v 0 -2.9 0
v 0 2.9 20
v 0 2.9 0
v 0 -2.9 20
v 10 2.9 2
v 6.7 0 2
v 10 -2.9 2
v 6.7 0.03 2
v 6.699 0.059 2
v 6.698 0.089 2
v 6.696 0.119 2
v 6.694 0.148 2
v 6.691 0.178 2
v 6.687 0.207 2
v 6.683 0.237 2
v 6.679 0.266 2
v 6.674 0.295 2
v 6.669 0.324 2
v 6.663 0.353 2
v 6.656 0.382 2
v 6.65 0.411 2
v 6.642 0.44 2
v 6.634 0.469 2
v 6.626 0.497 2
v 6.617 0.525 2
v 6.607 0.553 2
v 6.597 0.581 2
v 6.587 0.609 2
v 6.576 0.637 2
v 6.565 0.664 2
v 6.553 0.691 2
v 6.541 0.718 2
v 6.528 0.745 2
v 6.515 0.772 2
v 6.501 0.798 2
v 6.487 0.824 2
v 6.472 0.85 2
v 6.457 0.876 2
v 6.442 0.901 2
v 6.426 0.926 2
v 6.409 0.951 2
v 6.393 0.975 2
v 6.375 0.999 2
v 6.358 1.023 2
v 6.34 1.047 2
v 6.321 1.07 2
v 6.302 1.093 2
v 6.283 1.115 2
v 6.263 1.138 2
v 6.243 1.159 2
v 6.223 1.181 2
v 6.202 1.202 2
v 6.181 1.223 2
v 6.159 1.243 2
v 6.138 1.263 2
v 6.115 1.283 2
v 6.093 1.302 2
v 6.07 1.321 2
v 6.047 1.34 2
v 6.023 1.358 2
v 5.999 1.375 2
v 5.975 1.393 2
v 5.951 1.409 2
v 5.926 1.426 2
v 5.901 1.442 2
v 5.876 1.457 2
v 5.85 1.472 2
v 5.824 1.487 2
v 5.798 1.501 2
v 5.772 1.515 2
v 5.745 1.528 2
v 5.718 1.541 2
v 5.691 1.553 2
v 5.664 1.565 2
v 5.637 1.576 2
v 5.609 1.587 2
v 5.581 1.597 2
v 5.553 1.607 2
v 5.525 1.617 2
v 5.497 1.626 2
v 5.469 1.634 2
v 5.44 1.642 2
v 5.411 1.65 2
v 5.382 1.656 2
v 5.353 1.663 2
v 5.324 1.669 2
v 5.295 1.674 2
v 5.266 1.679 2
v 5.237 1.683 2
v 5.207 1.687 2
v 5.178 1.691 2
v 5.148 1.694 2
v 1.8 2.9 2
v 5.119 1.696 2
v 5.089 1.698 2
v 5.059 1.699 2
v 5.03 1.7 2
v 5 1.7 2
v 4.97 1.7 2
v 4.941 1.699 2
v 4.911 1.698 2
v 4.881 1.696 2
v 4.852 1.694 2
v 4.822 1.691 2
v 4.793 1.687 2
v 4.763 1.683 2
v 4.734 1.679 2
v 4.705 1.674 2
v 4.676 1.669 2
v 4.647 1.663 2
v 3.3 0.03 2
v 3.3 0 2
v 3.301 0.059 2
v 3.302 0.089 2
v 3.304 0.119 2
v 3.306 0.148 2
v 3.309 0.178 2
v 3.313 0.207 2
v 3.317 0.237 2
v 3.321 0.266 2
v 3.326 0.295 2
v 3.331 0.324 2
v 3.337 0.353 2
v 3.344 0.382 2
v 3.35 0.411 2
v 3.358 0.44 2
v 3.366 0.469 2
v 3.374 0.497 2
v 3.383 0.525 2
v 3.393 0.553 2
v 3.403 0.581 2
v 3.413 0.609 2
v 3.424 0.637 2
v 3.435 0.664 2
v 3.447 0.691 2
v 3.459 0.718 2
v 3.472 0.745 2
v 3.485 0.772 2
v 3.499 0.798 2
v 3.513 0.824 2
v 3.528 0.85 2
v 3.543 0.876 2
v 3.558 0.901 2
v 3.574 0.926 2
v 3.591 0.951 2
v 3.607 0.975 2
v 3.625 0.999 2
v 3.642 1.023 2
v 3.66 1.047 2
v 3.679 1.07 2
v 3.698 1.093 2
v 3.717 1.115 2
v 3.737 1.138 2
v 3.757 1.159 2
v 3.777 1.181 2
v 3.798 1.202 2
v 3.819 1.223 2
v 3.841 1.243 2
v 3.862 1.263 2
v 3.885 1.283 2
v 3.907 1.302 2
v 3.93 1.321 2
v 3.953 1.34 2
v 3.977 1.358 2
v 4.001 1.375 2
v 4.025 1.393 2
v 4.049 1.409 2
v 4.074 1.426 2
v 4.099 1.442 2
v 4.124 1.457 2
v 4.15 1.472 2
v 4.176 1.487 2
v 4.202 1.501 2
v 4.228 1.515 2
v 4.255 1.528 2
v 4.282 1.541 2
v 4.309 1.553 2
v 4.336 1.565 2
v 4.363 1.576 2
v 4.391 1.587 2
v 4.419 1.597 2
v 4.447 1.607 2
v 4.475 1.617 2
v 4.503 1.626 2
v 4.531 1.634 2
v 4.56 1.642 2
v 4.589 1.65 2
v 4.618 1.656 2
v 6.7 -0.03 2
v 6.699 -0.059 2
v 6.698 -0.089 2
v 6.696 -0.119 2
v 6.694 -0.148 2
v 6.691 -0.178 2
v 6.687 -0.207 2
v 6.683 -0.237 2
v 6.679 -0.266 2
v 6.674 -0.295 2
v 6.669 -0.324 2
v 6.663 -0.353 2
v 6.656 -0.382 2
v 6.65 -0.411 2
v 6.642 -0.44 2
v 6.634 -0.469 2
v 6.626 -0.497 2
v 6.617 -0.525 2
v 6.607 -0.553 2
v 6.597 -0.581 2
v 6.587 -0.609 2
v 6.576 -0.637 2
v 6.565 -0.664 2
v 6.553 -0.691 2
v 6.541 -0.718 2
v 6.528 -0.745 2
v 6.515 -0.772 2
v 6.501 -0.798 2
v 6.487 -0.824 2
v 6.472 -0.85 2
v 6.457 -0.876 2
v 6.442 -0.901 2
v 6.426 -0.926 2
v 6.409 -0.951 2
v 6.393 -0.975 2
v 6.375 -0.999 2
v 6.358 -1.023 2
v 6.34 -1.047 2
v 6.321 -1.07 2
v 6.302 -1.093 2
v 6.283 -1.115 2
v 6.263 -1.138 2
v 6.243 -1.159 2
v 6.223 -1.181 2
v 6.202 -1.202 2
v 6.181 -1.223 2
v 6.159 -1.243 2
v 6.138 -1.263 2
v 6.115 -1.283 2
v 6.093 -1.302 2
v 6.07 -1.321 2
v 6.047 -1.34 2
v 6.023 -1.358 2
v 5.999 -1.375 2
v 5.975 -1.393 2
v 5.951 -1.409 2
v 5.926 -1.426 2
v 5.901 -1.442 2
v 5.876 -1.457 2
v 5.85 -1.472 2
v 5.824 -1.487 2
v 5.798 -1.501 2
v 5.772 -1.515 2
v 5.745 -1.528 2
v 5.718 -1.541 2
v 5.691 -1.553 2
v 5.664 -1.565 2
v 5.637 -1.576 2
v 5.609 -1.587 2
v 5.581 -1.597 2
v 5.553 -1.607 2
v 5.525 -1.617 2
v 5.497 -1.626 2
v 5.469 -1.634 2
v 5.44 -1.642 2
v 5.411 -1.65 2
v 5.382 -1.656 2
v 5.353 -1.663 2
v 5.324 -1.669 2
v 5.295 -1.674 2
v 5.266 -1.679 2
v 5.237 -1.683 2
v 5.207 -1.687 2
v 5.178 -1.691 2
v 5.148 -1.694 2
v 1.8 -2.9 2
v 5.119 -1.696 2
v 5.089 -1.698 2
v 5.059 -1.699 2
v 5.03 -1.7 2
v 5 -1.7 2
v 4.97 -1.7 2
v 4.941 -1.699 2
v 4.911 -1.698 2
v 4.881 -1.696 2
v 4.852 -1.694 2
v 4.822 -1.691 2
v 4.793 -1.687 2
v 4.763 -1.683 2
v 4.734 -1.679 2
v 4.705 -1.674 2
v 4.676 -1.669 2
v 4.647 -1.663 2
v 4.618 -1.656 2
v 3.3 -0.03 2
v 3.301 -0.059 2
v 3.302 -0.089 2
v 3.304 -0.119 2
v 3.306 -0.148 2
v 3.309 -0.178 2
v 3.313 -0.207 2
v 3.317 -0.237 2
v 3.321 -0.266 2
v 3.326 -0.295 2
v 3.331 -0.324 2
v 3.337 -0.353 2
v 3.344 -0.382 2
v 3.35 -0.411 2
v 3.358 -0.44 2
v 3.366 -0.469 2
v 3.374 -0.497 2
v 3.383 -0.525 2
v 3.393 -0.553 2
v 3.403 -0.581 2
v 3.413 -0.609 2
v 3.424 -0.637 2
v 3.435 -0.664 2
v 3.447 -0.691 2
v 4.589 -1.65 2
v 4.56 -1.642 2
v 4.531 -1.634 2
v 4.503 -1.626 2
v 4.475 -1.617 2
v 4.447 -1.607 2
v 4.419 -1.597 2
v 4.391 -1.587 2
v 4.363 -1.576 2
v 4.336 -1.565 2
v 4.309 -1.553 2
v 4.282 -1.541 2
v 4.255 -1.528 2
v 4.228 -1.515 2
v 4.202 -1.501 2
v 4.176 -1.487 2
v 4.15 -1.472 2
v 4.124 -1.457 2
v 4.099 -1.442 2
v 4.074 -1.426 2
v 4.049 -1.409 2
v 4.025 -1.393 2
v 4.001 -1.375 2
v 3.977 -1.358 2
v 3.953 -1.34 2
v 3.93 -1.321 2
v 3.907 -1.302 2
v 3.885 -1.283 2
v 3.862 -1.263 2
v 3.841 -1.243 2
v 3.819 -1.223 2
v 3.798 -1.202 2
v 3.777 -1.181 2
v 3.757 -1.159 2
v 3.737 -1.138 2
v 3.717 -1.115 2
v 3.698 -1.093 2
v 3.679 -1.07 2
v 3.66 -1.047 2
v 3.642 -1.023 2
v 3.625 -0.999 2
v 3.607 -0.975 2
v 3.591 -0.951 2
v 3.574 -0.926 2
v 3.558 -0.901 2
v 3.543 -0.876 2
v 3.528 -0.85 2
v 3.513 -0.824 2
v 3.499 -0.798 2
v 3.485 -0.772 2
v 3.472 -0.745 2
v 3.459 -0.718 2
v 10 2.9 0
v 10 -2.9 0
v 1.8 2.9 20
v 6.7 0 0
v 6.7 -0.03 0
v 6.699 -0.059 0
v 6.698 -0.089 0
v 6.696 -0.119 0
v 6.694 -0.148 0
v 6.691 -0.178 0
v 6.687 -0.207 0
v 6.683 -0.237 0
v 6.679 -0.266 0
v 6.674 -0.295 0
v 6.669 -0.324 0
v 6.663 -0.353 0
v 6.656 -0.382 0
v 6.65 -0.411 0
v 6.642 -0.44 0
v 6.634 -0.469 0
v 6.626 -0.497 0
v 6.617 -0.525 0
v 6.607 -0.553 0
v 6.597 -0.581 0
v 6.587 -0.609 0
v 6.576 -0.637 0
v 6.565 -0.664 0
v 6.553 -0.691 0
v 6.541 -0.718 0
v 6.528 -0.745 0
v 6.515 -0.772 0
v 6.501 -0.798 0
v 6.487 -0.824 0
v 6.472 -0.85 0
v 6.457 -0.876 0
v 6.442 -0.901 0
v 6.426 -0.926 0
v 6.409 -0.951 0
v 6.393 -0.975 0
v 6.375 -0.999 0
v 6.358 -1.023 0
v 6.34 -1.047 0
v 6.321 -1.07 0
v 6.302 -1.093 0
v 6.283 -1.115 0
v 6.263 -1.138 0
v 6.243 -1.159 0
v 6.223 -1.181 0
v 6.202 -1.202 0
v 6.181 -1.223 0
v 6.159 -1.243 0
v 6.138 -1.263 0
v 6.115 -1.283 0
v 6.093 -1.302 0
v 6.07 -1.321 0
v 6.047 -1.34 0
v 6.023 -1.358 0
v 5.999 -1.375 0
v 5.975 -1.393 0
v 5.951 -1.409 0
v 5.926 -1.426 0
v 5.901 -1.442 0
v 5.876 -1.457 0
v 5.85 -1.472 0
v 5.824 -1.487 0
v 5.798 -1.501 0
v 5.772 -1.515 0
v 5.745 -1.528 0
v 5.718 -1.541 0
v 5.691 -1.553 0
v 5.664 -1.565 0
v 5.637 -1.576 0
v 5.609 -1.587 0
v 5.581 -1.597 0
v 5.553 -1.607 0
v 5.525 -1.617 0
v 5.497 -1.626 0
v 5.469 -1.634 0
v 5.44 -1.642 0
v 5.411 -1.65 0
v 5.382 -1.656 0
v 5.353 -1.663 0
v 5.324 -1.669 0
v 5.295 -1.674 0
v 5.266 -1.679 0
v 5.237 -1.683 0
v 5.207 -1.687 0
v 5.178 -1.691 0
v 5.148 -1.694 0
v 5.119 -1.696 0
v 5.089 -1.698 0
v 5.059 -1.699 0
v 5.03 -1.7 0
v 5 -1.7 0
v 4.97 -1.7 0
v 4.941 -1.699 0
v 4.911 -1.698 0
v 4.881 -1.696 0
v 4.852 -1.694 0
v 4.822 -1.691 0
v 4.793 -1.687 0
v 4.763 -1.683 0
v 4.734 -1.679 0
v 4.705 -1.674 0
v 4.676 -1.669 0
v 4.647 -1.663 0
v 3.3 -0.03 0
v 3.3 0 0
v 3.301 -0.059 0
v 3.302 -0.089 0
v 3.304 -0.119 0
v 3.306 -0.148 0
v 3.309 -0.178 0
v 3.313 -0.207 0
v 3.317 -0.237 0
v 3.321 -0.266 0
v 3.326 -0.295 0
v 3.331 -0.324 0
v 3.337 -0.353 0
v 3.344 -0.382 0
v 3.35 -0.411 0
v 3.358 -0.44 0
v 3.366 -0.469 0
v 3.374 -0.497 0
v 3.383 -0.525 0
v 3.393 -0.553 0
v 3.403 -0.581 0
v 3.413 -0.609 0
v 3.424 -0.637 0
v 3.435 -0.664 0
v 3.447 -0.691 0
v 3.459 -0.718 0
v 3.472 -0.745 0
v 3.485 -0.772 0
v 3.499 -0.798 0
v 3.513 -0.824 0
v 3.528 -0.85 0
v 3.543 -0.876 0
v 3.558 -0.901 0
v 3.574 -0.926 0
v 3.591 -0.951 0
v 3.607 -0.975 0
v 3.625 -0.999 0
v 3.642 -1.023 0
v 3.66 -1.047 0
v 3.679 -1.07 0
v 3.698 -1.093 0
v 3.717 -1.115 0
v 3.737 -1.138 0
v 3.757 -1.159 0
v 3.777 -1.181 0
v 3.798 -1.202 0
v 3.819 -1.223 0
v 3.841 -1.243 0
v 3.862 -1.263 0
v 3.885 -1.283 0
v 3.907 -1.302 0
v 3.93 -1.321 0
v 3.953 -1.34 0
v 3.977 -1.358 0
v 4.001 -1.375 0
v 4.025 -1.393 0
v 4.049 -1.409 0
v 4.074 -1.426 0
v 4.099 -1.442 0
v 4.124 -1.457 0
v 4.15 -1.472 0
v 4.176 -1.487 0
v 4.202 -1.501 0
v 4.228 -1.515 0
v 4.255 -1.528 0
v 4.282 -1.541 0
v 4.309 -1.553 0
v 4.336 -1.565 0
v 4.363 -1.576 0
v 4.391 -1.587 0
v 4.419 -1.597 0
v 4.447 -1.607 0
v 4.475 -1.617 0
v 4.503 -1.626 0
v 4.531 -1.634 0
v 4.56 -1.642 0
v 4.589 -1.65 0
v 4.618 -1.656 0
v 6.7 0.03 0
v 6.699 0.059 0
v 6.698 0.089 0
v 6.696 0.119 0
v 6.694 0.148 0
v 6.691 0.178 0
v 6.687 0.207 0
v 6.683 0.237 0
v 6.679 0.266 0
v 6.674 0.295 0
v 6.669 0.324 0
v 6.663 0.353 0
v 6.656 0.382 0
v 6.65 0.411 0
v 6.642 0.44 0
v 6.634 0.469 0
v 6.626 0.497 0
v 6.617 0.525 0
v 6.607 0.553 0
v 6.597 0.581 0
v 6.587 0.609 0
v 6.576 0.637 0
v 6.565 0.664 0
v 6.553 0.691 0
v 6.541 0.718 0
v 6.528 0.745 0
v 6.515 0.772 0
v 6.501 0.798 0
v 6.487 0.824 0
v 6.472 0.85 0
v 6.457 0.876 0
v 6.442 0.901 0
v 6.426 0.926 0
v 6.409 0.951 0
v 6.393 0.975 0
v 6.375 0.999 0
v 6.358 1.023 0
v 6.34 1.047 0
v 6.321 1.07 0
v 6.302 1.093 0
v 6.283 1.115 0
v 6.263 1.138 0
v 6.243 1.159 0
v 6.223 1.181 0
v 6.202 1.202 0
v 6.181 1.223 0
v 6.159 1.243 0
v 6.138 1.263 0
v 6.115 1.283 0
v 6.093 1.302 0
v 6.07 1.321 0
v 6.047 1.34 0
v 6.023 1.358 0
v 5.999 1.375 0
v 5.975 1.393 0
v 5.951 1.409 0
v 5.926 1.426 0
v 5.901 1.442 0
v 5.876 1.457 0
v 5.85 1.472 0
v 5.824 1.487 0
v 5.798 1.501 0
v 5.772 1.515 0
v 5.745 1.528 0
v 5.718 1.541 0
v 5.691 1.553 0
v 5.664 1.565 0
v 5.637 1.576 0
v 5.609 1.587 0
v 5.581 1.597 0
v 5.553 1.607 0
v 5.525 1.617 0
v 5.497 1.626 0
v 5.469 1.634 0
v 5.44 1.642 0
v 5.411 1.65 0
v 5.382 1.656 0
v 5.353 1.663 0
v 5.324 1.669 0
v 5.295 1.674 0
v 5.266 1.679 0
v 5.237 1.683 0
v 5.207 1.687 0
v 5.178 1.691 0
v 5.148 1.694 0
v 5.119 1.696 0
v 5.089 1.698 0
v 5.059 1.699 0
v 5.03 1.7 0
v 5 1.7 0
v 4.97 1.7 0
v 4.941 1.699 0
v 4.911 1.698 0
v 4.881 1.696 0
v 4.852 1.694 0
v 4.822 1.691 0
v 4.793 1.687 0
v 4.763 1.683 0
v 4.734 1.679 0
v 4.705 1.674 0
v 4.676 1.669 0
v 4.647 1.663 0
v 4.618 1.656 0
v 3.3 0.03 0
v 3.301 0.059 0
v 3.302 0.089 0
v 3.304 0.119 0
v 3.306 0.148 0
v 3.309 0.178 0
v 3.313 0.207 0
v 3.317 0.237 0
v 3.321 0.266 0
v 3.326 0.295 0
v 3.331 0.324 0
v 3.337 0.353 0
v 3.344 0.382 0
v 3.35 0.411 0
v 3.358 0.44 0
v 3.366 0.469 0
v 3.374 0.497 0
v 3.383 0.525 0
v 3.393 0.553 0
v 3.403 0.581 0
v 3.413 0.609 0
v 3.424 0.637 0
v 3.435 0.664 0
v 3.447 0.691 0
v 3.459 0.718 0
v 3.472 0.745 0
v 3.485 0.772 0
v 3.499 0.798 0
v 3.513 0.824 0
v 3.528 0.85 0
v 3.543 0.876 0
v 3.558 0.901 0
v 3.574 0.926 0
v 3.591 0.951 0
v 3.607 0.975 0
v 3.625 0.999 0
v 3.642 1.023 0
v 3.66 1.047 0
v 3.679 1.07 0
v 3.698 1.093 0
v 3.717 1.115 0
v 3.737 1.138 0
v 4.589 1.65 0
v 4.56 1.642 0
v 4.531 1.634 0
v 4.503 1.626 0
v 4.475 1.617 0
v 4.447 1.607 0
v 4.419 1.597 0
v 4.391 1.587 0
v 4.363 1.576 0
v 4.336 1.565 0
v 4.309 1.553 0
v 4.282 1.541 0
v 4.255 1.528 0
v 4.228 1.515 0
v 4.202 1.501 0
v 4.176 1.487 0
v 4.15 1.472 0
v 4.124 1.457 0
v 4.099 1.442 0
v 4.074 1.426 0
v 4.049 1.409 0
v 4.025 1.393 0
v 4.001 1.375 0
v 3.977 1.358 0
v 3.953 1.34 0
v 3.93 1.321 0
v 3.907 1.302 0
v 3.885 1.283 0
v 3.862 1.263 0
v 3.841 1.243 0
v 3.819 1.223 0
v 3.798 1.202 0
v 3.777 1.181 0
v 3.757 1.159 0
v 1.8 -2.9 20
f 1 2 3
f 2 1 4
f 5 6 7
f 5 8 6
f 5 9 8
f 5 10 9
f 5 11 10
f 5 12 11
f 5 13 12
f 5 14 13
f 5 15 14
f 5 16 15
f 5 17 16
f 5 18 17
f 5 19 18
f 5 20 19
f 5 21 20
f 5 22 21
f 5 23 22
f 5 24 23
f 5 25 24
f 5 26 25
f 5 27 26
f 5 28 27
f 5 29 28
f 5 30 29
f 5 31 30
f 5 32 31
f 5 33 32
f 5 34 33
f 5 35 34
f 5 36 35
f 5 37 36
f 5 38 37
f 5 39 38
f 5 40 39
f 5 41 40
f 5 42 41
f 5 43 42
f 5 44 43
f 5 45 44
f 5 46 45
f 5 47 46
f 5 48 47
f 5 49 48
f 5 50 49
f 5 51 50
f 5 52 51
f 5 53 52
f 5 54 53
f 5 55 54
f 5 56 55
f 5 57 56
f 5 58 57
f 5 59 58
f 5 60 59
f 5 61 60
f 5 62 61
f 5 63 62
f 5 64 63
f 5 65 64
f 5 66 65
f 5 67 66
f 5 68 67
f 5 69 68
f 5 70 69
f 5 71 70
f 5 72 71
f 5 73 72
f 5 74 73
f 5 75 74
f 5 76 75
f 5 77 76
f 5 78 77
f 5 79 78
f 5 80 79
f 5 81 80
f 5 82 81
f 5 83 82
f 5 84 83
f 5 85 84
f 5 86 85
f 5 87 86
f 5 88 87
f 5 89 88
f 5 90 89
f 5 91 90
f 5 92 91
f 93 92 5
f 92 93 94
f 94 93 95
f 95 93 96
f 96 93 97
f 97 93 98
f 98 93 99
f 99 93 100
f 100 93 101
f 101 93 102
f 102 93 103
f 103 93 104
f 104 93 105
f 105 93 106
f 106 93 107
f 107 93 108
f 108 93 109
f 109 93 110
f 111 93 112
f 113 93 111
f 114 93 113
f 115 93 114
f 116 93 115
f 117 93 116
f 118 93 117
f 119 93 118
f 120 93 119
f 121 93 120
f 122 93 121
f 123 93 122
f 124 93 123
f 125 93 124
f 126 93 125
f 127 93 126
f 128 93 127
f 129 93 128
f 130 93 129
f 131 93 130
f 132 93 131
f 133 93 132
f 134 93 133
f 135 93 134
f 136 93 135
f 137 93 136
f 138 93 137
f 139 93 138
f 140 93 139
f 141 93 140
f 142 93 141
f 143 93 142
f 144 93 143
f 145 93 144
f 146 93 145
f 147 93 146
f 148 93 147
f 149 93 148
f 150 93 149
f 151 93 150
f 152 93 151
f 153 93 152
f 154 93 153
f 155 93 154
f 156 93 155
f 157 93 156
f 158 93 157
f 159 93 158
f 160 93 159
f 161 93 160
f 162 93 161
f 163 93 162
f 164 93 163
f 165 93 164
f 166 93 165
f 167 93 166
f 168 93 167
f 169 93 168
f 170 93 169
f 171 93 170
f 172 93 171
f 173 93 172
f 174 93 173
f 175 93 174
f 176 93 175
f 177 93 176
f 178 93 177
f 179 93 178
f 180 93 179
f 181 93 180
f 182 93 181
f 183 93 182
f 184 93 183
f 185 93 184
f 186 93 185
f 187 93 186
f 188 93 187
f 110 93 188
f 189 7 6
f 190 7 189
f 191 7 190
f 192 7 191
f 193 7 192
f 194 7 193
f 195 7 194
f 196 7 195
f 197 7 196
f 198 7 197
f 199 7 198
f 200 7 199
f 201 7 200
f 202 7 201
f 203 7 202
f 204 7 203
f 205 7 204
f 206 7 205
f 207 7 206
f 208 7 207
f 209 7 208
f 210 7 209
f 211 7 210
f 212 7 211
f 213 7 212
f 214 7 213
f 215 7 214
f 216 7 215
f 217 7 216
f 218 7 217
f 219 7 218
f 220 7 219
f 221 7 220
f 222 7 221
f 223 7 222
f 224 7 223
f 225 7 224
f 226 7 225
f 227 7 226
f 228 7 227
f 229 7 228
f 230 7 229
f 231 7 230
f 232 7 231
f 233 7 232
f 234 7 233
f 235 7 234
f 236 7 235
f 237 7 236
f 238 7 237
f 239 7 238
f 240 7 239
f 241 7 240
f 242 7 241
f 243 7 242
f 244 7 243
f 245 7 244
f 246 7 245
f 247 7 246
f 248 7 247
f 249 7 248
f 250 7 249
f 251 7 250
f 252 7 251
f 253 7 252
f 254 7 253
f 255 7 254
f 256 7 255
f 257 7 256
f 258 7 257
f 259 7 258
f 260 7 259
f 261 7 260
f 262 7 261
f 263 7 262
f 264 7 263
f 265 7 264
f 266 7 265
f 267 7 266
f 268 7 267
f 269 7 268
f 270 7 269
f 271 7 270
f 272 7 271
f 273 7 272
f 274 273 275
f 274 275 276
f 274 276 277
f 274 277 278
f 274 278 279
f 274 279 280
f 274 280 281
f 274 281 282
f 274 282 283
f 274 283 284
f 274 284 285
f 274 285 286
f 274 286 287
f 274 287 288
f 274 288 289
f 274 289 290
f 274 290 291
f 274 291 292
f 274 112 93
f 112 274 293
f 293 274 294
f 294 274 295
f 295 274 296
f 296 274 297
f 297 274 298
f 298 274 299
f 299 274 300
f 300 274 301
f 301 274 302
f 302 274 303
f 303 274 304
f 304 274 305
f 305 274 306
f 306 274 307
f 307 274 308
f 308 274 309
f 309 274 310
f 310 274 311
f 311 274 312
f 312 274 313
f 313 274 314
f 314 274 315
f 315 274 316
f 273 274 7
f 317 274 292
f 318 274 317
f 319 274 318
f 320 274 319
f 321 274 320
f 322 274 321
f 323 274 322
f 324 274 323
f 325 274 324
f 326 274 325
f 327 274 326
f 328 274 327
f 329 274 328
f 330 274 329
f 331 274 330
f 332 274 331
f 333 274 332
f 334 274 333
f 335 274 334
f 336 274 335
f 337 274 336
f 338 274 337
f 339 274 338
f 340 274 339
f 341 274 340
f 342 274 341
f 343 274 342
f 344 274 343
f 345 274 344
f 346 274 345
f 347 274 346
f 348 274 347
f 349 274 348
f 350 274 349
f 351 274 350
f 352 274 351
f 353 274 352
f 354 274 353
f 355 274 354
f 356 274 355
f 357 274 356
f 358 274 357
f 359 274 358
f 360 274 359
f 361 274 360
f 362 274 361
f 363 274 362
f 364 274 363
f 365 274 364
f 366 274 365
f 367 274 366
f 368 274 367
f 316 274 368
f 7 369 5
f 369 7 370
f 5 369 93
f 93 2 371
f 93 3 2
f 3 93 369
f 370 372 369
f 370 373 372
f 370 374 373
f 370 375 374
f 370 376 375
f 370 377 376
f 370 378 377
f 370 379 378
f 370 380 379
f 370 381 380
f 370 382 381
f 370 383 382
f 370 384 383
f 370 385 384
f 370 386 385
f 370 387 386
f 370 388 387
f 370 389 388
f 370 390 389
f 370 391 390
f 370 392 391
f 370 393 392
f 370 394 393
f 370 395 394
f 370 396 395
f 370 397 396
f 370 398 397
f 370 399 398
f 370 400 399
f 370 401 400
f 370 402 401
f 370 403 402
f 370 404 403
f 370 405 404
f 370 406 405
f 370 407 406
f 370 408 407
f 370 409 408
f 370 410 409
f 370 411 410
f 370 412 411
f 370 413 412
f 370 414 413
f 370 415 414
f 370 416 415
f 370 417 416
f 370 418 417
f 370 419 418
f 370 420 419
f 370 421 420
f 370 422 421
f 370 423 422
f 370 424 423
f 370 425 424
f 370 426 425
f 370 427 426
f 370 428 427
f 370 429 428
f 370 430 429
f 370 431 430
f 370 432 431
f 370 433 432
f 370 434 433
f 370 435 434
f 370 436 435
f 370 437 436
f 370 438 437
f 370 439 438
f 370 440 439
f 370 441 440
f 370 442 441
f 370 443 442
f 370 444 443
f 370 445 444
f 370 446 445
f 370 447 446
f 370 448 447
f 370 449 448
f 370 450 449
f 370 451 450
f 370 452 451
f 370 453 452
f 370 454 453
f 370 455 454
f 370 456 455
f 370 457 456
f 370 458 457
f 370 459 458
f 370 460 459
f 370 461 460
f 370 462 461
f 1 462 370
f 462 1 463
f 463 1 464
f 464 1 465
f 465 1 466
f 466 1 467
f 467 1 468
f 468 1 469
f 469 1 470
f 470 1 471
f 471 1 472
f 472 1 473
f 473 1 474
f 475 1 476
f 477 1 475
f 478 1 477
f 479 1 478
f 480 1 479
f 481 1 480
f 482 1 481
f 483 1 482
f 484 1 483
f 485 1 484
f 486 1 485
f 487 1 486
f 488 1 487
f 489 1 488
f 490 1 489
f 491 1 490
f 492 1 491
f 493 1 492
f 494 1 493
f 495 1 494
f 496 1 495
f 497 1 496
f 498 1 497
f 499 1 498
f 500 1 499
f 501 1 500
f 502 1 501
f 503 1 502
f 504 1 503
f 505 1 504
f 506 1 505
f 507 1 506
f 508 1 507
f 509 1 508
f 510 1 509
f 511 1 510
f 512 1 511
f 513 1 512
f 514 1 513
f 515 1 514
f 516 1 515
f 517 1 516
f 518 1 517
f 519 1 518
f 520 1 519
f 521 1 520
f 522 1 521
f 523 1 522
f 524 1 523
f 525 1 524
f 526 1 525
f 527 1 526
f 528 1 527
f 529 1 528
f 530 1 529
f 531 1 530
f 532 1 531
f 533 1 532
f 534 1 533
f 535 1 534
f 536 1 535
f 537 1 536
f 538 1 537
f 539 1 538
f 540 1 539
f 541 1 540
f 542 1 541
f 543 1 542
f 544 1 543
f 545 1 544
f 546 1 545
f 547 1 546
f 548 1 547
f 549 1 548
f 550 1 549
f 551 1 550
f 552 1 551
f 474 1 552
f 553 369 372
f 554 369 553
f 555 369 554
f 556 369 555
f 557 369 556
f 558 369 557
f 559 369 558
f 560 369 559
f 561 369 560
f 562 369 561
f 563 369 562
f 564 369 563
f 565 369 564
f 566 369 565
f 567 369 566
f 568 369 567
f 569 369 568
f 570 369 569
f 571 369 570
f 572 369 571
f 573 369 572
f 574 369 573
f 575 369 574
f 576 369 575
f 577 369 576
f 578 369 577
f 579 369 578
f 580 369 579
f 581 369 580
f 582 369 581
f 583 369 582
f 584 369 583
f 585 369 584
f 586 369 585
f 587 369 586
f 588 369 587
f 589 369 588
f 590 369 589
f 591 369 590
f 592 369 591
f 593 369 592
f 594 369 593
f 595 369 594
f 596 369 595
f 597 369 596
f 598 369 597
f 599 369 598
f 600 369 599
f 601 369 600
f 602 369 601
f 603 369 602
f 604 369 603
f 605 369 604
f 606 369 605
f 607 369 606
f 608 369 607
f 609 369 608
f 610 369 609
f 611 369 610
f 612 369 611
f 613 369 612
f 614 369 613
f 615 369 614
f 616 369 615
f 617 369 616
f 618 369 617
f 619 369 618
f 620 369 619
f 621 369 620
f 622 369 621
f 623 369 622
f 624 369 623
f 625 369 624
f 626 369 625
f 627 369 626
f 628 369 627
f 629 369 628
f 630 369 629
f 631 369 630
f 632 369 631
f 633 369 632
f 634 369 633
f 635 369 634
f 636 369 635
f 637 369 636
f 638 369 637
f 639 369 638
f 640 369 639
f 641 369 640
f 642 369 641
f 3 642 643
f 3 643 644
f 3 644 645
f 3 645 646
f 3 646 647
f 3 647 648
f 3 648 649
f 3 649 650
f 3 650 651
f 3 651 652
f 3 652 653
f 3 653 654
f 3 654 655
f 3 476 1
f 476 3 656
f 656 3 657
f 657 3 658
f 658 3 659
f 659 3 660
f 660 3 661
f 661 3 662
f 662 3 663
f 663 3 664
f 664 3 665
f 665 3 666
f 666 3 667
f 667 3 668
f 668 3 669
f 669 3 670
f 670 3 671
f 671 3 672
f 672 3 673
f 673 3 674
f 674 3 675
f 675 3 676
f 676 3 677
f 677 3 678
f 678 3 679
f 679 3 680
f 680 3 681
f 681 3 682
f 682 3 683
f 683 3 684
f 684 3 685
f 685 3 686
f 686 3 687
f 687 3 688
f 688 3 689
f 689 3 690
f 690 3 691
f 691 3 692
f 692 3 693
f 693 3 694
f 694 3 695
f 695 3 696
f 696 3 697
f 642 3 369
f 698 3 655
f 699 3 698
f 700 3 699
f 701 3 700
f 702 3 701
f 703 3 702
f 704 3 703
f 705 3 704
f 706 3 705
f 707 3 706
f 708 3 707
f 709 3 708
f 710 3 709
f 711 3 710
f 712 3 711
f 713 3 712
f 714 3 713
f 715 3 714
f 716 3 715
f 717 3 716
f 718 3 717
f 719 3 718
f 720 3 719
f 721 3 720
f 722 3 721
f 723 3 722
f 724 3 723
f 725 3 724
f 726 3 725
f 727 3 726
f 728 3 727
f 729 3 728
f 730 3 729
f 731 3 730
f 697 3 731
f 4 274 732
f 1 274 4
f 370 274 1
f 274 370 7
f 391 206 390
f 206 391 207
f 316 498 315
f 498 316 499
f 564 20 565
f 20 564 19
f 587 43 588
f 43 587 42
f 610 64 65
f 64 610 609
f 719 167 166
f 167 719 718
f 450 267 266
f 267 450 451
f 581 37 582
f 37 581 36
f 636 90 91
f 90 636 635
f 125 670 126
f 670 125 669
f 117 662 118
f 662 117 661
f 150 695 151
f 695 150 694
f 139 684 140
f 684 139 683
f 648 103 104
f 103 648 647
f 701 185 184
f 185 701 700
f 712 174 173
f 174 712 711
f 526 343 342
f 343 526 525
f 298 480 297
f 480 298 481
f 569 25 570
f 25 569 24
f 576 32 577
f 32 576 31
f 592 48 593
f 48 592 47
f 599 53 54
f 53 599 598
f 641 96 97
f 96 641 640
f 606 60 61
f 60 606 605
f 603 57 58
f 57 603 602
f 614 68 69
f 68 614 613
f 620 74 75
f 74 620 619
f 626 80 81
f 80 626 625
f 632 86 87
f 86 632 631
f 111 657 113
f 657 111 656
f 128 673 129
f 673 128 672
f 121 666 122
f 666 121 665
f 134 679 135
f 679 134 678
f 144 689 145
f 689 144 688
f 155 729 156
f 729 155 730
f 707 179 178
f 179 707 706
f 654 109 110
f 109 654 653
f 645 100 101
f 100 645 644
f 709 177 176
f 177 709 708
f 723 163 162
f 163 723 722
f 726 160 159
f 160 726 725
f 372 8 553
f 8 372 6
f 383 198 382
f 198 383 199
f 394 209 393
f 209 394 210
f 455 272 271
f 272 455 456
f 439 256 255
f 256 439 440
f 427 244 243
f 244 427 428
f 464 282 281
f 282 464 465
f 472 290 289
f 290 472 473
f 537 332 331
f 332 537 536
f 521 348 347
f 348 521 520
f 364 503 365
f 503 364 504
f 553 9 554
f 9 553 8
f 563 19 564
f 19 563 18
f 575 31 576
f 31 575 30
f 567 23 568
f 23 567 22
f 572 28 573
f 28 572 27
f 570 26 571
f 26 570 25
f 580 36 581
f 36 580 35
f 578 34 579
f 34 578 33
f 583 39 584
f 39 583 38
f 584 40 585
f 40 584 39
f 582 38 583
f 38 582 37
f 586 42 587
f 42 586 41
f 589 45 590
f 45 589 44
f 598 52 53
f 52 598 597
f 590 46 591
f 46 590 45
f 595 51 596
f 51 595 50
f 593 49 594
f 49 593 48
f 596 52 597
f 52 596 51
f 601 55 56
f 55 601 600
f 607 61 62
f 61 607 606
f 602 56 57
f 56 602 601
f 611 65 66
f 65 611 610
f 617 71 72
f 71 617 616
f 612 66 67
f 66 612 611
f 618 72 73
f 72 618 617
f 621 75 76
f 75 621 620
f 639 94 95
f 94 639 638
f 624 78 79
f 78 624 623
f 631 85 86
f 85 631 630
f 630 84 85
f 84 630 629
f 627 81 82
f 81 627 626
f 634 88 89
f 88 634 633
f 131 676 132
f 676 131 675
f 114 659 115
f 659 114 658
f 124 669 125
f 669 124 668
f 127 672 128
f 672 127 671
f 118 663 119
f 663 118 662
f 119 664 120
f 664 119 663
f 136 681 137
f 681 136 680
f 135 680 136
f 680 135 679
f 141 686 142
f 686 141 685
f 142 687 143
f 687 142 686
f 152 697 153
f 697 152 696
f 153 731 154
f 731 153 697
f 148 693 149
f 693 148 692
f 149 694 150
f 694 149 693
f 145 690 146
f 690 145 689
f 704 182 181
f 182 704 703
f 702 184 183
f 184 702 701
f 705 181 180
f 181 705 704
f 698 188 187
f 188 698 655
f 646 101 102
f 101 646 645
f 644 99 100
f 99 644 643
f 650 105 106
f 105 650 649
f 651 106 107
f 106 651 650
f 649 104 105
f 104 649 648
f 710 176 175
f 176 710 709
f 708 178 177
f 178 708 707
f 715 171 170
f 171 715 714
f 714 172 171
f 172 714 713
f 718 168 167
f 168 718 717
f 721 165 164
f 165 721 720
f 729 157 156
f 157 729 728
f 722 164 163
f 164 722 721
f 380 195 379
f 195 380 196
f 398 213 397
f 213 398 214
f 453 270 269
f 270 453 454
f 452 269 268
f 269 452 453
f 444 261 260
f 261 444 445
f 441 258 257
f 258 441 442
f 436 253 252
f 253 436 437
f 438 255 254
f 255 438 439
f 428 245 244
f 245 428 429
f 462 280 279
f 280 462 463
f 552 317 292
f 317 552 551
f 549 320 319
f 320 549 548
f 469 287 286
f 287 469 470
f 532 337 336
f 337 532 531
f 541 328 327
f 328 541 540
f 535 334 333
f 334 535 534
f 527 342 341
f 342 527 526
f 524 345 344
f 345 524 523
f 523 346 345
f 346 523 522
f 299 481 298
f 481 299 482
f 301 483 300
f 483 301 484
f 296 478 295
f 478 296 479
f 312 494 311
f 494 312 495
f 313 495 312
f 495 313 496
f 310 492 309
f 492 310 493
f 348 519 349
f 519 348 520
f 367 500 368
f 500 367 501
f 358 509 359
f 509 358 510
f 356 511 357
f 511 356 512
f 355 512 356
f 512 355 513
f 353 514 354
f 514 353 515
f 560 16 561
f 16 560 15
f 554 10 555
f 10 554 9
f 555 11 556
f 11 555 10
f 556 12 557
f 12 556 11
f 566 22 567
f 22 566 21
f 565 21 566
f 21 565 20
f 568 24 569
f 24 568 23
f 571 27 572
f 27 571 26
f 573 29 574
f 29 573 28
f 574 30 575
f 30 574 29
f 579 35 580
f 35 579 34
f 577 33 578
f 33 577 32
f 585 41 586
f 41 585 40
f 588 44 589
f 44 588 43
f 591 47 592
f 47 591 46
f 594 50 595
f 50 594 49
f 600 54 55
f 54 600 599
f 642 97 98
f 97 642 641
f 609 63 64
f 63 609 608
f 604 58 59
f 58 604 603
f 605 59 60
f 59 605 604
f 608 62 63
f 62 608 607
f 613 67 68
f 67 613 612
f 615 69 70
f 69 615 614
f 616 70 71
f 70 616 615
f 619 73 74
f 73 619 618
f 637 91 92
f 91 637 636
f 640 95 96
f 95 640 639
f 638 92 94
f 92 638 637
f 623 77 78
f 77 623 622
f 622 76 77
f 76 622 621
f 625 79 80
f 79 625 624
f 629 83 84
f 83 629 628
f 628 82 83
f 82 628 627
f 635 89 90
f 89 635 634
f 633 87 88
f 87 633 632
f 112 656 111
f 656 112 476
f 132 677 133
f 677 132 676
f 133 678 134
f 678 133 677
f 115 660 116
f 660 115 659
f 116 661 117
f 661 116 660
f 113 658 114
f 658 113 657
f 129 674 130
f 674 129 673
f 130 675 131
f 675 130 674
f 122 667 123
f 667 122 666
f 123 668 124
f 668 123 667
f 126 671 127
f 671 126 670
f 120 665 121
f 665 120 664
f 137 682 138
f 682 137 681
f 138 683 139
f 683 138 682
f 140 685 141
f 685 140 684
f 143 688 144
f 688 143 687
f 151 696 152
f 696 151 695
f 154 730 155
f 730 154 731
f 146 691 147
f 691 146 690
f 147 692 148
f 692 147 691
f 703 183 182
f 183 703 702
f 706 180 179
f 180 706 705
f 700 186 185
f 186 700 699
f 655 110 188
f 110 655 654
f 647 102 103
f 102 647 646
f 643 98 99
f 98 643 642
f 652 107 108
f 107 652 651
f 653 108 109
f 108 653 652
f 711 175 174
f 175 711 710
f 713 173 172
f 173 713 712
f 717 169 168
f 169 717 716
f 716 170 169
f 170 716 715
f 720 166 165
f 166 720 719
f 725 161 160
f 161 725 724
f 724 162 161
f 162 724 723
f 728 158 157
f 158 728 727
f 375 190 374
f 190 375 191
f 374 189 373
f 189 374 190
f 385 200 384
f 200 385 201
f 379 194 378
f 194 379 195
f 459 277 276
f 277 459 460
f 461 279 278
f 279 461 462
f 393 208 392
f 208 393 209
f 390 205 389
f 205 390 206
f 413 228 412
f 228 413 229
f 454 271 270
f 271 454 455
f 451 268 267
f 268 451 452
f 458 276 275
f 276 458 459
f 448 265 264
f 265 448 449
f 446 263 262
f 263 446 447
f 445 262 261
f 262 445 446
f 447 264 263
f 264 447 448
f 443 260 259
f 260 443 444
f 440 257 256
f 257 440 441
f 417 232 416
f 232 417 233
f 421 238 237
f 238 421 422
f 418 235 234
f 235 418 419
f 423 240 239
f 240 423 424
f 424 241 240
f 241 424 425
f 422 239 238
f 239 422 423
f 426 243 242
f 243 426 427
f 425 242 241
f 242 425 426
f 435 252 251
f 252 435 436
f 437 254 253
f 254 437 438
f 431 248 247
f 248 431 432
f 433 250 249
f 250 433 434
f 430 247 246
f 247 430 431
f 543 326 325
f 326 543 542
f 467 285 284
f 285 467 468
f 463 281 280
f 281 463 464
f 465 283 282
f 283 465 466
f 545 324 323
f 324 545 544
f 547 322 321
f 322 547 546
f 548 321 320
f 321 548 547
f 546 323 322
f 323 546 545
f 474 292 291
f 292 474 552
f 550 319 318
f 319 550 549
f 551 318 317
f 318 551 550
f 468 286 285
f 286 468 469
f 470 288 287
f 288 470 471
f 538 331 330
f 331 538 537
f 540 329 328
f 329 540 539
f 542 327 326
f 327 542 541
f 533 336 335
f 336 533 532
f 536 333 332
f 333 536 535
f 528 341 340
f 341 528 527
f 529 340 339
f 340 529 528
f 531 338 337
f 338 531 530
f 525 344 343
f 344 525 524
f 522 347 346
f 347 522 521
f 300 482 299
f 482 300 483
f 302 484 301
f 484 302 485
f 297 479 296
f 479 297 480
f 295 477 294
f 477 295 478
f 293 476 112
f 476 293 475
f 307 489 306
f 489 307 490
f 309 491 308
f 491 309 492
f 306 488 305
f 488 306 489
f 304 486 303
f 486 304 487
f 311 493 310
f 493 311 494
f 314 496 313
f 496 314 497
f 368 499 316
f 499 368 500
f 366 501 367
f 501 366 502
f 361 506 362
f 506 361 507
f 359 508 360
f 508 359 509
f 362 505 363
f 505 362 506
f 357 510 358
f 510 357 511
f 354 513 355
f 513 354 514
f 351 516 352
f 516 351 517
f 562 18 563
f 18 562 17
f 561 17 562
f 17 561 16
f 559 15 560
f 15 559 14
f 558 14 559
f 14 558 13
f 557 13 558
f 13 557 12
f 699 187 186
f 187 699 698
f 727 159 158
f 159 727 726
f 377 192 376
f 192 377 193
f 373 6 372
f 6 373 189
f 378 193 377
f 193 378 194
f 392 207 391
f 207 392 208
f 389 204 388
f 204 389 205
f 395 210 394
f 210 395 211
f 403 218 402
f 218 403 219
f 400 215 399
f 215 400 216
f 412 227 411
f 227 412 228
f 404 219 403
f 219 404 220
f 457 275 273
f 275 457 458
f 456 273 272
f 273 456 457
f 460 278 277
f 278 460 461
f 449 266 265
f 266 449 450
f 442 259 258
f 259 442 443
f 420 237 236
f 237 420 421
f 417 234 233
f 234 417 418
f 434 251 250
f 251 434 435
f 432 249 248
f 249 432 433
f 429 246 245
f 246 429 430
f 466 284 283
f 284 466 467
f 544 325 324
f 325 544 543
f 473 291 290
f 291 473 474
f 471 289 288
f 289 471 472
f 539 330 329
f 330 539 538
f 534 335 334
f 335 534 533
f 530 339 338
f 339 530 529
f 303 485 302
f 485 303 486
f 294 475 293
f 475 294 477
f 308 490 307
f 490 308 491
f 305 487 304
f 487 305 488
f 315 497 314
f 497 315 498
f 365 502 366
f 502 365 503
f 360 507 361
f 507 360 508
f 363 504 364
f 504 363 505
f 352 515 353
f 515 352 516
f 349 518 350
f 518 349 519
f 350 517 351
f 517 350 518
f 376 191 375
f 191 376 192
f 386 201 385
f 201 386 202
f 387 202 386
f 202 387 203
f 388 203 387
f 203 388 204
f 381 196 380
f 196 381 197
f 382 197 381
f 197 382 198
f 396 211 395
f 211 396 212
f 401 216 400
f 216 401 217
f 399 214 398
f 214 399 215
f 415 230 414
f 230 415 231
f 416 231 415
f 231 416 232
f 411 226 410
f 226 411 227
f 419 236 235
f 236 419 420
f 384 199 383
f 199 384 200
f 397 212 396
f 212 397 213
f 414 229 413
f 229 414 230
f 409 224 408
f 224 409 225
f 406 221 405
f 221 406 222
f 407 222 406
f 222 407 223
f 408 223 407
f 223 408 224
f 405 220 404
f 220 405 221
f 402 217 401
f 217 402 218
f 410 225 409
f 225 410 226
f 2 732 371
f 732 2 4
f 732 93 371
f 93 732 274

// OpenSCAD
difference () {
    translate([0, -2.9, 0]) { 
        cube([10, 5.8, 2]);
    }

    translate([5, 0, 0]) { 
        cylinder(h=15, r=1.7, $fn = 360, center=true);
    }
}

translate([0, -2.9, 0]) {
    cube([1.8, 5.8, 20]);  
}
